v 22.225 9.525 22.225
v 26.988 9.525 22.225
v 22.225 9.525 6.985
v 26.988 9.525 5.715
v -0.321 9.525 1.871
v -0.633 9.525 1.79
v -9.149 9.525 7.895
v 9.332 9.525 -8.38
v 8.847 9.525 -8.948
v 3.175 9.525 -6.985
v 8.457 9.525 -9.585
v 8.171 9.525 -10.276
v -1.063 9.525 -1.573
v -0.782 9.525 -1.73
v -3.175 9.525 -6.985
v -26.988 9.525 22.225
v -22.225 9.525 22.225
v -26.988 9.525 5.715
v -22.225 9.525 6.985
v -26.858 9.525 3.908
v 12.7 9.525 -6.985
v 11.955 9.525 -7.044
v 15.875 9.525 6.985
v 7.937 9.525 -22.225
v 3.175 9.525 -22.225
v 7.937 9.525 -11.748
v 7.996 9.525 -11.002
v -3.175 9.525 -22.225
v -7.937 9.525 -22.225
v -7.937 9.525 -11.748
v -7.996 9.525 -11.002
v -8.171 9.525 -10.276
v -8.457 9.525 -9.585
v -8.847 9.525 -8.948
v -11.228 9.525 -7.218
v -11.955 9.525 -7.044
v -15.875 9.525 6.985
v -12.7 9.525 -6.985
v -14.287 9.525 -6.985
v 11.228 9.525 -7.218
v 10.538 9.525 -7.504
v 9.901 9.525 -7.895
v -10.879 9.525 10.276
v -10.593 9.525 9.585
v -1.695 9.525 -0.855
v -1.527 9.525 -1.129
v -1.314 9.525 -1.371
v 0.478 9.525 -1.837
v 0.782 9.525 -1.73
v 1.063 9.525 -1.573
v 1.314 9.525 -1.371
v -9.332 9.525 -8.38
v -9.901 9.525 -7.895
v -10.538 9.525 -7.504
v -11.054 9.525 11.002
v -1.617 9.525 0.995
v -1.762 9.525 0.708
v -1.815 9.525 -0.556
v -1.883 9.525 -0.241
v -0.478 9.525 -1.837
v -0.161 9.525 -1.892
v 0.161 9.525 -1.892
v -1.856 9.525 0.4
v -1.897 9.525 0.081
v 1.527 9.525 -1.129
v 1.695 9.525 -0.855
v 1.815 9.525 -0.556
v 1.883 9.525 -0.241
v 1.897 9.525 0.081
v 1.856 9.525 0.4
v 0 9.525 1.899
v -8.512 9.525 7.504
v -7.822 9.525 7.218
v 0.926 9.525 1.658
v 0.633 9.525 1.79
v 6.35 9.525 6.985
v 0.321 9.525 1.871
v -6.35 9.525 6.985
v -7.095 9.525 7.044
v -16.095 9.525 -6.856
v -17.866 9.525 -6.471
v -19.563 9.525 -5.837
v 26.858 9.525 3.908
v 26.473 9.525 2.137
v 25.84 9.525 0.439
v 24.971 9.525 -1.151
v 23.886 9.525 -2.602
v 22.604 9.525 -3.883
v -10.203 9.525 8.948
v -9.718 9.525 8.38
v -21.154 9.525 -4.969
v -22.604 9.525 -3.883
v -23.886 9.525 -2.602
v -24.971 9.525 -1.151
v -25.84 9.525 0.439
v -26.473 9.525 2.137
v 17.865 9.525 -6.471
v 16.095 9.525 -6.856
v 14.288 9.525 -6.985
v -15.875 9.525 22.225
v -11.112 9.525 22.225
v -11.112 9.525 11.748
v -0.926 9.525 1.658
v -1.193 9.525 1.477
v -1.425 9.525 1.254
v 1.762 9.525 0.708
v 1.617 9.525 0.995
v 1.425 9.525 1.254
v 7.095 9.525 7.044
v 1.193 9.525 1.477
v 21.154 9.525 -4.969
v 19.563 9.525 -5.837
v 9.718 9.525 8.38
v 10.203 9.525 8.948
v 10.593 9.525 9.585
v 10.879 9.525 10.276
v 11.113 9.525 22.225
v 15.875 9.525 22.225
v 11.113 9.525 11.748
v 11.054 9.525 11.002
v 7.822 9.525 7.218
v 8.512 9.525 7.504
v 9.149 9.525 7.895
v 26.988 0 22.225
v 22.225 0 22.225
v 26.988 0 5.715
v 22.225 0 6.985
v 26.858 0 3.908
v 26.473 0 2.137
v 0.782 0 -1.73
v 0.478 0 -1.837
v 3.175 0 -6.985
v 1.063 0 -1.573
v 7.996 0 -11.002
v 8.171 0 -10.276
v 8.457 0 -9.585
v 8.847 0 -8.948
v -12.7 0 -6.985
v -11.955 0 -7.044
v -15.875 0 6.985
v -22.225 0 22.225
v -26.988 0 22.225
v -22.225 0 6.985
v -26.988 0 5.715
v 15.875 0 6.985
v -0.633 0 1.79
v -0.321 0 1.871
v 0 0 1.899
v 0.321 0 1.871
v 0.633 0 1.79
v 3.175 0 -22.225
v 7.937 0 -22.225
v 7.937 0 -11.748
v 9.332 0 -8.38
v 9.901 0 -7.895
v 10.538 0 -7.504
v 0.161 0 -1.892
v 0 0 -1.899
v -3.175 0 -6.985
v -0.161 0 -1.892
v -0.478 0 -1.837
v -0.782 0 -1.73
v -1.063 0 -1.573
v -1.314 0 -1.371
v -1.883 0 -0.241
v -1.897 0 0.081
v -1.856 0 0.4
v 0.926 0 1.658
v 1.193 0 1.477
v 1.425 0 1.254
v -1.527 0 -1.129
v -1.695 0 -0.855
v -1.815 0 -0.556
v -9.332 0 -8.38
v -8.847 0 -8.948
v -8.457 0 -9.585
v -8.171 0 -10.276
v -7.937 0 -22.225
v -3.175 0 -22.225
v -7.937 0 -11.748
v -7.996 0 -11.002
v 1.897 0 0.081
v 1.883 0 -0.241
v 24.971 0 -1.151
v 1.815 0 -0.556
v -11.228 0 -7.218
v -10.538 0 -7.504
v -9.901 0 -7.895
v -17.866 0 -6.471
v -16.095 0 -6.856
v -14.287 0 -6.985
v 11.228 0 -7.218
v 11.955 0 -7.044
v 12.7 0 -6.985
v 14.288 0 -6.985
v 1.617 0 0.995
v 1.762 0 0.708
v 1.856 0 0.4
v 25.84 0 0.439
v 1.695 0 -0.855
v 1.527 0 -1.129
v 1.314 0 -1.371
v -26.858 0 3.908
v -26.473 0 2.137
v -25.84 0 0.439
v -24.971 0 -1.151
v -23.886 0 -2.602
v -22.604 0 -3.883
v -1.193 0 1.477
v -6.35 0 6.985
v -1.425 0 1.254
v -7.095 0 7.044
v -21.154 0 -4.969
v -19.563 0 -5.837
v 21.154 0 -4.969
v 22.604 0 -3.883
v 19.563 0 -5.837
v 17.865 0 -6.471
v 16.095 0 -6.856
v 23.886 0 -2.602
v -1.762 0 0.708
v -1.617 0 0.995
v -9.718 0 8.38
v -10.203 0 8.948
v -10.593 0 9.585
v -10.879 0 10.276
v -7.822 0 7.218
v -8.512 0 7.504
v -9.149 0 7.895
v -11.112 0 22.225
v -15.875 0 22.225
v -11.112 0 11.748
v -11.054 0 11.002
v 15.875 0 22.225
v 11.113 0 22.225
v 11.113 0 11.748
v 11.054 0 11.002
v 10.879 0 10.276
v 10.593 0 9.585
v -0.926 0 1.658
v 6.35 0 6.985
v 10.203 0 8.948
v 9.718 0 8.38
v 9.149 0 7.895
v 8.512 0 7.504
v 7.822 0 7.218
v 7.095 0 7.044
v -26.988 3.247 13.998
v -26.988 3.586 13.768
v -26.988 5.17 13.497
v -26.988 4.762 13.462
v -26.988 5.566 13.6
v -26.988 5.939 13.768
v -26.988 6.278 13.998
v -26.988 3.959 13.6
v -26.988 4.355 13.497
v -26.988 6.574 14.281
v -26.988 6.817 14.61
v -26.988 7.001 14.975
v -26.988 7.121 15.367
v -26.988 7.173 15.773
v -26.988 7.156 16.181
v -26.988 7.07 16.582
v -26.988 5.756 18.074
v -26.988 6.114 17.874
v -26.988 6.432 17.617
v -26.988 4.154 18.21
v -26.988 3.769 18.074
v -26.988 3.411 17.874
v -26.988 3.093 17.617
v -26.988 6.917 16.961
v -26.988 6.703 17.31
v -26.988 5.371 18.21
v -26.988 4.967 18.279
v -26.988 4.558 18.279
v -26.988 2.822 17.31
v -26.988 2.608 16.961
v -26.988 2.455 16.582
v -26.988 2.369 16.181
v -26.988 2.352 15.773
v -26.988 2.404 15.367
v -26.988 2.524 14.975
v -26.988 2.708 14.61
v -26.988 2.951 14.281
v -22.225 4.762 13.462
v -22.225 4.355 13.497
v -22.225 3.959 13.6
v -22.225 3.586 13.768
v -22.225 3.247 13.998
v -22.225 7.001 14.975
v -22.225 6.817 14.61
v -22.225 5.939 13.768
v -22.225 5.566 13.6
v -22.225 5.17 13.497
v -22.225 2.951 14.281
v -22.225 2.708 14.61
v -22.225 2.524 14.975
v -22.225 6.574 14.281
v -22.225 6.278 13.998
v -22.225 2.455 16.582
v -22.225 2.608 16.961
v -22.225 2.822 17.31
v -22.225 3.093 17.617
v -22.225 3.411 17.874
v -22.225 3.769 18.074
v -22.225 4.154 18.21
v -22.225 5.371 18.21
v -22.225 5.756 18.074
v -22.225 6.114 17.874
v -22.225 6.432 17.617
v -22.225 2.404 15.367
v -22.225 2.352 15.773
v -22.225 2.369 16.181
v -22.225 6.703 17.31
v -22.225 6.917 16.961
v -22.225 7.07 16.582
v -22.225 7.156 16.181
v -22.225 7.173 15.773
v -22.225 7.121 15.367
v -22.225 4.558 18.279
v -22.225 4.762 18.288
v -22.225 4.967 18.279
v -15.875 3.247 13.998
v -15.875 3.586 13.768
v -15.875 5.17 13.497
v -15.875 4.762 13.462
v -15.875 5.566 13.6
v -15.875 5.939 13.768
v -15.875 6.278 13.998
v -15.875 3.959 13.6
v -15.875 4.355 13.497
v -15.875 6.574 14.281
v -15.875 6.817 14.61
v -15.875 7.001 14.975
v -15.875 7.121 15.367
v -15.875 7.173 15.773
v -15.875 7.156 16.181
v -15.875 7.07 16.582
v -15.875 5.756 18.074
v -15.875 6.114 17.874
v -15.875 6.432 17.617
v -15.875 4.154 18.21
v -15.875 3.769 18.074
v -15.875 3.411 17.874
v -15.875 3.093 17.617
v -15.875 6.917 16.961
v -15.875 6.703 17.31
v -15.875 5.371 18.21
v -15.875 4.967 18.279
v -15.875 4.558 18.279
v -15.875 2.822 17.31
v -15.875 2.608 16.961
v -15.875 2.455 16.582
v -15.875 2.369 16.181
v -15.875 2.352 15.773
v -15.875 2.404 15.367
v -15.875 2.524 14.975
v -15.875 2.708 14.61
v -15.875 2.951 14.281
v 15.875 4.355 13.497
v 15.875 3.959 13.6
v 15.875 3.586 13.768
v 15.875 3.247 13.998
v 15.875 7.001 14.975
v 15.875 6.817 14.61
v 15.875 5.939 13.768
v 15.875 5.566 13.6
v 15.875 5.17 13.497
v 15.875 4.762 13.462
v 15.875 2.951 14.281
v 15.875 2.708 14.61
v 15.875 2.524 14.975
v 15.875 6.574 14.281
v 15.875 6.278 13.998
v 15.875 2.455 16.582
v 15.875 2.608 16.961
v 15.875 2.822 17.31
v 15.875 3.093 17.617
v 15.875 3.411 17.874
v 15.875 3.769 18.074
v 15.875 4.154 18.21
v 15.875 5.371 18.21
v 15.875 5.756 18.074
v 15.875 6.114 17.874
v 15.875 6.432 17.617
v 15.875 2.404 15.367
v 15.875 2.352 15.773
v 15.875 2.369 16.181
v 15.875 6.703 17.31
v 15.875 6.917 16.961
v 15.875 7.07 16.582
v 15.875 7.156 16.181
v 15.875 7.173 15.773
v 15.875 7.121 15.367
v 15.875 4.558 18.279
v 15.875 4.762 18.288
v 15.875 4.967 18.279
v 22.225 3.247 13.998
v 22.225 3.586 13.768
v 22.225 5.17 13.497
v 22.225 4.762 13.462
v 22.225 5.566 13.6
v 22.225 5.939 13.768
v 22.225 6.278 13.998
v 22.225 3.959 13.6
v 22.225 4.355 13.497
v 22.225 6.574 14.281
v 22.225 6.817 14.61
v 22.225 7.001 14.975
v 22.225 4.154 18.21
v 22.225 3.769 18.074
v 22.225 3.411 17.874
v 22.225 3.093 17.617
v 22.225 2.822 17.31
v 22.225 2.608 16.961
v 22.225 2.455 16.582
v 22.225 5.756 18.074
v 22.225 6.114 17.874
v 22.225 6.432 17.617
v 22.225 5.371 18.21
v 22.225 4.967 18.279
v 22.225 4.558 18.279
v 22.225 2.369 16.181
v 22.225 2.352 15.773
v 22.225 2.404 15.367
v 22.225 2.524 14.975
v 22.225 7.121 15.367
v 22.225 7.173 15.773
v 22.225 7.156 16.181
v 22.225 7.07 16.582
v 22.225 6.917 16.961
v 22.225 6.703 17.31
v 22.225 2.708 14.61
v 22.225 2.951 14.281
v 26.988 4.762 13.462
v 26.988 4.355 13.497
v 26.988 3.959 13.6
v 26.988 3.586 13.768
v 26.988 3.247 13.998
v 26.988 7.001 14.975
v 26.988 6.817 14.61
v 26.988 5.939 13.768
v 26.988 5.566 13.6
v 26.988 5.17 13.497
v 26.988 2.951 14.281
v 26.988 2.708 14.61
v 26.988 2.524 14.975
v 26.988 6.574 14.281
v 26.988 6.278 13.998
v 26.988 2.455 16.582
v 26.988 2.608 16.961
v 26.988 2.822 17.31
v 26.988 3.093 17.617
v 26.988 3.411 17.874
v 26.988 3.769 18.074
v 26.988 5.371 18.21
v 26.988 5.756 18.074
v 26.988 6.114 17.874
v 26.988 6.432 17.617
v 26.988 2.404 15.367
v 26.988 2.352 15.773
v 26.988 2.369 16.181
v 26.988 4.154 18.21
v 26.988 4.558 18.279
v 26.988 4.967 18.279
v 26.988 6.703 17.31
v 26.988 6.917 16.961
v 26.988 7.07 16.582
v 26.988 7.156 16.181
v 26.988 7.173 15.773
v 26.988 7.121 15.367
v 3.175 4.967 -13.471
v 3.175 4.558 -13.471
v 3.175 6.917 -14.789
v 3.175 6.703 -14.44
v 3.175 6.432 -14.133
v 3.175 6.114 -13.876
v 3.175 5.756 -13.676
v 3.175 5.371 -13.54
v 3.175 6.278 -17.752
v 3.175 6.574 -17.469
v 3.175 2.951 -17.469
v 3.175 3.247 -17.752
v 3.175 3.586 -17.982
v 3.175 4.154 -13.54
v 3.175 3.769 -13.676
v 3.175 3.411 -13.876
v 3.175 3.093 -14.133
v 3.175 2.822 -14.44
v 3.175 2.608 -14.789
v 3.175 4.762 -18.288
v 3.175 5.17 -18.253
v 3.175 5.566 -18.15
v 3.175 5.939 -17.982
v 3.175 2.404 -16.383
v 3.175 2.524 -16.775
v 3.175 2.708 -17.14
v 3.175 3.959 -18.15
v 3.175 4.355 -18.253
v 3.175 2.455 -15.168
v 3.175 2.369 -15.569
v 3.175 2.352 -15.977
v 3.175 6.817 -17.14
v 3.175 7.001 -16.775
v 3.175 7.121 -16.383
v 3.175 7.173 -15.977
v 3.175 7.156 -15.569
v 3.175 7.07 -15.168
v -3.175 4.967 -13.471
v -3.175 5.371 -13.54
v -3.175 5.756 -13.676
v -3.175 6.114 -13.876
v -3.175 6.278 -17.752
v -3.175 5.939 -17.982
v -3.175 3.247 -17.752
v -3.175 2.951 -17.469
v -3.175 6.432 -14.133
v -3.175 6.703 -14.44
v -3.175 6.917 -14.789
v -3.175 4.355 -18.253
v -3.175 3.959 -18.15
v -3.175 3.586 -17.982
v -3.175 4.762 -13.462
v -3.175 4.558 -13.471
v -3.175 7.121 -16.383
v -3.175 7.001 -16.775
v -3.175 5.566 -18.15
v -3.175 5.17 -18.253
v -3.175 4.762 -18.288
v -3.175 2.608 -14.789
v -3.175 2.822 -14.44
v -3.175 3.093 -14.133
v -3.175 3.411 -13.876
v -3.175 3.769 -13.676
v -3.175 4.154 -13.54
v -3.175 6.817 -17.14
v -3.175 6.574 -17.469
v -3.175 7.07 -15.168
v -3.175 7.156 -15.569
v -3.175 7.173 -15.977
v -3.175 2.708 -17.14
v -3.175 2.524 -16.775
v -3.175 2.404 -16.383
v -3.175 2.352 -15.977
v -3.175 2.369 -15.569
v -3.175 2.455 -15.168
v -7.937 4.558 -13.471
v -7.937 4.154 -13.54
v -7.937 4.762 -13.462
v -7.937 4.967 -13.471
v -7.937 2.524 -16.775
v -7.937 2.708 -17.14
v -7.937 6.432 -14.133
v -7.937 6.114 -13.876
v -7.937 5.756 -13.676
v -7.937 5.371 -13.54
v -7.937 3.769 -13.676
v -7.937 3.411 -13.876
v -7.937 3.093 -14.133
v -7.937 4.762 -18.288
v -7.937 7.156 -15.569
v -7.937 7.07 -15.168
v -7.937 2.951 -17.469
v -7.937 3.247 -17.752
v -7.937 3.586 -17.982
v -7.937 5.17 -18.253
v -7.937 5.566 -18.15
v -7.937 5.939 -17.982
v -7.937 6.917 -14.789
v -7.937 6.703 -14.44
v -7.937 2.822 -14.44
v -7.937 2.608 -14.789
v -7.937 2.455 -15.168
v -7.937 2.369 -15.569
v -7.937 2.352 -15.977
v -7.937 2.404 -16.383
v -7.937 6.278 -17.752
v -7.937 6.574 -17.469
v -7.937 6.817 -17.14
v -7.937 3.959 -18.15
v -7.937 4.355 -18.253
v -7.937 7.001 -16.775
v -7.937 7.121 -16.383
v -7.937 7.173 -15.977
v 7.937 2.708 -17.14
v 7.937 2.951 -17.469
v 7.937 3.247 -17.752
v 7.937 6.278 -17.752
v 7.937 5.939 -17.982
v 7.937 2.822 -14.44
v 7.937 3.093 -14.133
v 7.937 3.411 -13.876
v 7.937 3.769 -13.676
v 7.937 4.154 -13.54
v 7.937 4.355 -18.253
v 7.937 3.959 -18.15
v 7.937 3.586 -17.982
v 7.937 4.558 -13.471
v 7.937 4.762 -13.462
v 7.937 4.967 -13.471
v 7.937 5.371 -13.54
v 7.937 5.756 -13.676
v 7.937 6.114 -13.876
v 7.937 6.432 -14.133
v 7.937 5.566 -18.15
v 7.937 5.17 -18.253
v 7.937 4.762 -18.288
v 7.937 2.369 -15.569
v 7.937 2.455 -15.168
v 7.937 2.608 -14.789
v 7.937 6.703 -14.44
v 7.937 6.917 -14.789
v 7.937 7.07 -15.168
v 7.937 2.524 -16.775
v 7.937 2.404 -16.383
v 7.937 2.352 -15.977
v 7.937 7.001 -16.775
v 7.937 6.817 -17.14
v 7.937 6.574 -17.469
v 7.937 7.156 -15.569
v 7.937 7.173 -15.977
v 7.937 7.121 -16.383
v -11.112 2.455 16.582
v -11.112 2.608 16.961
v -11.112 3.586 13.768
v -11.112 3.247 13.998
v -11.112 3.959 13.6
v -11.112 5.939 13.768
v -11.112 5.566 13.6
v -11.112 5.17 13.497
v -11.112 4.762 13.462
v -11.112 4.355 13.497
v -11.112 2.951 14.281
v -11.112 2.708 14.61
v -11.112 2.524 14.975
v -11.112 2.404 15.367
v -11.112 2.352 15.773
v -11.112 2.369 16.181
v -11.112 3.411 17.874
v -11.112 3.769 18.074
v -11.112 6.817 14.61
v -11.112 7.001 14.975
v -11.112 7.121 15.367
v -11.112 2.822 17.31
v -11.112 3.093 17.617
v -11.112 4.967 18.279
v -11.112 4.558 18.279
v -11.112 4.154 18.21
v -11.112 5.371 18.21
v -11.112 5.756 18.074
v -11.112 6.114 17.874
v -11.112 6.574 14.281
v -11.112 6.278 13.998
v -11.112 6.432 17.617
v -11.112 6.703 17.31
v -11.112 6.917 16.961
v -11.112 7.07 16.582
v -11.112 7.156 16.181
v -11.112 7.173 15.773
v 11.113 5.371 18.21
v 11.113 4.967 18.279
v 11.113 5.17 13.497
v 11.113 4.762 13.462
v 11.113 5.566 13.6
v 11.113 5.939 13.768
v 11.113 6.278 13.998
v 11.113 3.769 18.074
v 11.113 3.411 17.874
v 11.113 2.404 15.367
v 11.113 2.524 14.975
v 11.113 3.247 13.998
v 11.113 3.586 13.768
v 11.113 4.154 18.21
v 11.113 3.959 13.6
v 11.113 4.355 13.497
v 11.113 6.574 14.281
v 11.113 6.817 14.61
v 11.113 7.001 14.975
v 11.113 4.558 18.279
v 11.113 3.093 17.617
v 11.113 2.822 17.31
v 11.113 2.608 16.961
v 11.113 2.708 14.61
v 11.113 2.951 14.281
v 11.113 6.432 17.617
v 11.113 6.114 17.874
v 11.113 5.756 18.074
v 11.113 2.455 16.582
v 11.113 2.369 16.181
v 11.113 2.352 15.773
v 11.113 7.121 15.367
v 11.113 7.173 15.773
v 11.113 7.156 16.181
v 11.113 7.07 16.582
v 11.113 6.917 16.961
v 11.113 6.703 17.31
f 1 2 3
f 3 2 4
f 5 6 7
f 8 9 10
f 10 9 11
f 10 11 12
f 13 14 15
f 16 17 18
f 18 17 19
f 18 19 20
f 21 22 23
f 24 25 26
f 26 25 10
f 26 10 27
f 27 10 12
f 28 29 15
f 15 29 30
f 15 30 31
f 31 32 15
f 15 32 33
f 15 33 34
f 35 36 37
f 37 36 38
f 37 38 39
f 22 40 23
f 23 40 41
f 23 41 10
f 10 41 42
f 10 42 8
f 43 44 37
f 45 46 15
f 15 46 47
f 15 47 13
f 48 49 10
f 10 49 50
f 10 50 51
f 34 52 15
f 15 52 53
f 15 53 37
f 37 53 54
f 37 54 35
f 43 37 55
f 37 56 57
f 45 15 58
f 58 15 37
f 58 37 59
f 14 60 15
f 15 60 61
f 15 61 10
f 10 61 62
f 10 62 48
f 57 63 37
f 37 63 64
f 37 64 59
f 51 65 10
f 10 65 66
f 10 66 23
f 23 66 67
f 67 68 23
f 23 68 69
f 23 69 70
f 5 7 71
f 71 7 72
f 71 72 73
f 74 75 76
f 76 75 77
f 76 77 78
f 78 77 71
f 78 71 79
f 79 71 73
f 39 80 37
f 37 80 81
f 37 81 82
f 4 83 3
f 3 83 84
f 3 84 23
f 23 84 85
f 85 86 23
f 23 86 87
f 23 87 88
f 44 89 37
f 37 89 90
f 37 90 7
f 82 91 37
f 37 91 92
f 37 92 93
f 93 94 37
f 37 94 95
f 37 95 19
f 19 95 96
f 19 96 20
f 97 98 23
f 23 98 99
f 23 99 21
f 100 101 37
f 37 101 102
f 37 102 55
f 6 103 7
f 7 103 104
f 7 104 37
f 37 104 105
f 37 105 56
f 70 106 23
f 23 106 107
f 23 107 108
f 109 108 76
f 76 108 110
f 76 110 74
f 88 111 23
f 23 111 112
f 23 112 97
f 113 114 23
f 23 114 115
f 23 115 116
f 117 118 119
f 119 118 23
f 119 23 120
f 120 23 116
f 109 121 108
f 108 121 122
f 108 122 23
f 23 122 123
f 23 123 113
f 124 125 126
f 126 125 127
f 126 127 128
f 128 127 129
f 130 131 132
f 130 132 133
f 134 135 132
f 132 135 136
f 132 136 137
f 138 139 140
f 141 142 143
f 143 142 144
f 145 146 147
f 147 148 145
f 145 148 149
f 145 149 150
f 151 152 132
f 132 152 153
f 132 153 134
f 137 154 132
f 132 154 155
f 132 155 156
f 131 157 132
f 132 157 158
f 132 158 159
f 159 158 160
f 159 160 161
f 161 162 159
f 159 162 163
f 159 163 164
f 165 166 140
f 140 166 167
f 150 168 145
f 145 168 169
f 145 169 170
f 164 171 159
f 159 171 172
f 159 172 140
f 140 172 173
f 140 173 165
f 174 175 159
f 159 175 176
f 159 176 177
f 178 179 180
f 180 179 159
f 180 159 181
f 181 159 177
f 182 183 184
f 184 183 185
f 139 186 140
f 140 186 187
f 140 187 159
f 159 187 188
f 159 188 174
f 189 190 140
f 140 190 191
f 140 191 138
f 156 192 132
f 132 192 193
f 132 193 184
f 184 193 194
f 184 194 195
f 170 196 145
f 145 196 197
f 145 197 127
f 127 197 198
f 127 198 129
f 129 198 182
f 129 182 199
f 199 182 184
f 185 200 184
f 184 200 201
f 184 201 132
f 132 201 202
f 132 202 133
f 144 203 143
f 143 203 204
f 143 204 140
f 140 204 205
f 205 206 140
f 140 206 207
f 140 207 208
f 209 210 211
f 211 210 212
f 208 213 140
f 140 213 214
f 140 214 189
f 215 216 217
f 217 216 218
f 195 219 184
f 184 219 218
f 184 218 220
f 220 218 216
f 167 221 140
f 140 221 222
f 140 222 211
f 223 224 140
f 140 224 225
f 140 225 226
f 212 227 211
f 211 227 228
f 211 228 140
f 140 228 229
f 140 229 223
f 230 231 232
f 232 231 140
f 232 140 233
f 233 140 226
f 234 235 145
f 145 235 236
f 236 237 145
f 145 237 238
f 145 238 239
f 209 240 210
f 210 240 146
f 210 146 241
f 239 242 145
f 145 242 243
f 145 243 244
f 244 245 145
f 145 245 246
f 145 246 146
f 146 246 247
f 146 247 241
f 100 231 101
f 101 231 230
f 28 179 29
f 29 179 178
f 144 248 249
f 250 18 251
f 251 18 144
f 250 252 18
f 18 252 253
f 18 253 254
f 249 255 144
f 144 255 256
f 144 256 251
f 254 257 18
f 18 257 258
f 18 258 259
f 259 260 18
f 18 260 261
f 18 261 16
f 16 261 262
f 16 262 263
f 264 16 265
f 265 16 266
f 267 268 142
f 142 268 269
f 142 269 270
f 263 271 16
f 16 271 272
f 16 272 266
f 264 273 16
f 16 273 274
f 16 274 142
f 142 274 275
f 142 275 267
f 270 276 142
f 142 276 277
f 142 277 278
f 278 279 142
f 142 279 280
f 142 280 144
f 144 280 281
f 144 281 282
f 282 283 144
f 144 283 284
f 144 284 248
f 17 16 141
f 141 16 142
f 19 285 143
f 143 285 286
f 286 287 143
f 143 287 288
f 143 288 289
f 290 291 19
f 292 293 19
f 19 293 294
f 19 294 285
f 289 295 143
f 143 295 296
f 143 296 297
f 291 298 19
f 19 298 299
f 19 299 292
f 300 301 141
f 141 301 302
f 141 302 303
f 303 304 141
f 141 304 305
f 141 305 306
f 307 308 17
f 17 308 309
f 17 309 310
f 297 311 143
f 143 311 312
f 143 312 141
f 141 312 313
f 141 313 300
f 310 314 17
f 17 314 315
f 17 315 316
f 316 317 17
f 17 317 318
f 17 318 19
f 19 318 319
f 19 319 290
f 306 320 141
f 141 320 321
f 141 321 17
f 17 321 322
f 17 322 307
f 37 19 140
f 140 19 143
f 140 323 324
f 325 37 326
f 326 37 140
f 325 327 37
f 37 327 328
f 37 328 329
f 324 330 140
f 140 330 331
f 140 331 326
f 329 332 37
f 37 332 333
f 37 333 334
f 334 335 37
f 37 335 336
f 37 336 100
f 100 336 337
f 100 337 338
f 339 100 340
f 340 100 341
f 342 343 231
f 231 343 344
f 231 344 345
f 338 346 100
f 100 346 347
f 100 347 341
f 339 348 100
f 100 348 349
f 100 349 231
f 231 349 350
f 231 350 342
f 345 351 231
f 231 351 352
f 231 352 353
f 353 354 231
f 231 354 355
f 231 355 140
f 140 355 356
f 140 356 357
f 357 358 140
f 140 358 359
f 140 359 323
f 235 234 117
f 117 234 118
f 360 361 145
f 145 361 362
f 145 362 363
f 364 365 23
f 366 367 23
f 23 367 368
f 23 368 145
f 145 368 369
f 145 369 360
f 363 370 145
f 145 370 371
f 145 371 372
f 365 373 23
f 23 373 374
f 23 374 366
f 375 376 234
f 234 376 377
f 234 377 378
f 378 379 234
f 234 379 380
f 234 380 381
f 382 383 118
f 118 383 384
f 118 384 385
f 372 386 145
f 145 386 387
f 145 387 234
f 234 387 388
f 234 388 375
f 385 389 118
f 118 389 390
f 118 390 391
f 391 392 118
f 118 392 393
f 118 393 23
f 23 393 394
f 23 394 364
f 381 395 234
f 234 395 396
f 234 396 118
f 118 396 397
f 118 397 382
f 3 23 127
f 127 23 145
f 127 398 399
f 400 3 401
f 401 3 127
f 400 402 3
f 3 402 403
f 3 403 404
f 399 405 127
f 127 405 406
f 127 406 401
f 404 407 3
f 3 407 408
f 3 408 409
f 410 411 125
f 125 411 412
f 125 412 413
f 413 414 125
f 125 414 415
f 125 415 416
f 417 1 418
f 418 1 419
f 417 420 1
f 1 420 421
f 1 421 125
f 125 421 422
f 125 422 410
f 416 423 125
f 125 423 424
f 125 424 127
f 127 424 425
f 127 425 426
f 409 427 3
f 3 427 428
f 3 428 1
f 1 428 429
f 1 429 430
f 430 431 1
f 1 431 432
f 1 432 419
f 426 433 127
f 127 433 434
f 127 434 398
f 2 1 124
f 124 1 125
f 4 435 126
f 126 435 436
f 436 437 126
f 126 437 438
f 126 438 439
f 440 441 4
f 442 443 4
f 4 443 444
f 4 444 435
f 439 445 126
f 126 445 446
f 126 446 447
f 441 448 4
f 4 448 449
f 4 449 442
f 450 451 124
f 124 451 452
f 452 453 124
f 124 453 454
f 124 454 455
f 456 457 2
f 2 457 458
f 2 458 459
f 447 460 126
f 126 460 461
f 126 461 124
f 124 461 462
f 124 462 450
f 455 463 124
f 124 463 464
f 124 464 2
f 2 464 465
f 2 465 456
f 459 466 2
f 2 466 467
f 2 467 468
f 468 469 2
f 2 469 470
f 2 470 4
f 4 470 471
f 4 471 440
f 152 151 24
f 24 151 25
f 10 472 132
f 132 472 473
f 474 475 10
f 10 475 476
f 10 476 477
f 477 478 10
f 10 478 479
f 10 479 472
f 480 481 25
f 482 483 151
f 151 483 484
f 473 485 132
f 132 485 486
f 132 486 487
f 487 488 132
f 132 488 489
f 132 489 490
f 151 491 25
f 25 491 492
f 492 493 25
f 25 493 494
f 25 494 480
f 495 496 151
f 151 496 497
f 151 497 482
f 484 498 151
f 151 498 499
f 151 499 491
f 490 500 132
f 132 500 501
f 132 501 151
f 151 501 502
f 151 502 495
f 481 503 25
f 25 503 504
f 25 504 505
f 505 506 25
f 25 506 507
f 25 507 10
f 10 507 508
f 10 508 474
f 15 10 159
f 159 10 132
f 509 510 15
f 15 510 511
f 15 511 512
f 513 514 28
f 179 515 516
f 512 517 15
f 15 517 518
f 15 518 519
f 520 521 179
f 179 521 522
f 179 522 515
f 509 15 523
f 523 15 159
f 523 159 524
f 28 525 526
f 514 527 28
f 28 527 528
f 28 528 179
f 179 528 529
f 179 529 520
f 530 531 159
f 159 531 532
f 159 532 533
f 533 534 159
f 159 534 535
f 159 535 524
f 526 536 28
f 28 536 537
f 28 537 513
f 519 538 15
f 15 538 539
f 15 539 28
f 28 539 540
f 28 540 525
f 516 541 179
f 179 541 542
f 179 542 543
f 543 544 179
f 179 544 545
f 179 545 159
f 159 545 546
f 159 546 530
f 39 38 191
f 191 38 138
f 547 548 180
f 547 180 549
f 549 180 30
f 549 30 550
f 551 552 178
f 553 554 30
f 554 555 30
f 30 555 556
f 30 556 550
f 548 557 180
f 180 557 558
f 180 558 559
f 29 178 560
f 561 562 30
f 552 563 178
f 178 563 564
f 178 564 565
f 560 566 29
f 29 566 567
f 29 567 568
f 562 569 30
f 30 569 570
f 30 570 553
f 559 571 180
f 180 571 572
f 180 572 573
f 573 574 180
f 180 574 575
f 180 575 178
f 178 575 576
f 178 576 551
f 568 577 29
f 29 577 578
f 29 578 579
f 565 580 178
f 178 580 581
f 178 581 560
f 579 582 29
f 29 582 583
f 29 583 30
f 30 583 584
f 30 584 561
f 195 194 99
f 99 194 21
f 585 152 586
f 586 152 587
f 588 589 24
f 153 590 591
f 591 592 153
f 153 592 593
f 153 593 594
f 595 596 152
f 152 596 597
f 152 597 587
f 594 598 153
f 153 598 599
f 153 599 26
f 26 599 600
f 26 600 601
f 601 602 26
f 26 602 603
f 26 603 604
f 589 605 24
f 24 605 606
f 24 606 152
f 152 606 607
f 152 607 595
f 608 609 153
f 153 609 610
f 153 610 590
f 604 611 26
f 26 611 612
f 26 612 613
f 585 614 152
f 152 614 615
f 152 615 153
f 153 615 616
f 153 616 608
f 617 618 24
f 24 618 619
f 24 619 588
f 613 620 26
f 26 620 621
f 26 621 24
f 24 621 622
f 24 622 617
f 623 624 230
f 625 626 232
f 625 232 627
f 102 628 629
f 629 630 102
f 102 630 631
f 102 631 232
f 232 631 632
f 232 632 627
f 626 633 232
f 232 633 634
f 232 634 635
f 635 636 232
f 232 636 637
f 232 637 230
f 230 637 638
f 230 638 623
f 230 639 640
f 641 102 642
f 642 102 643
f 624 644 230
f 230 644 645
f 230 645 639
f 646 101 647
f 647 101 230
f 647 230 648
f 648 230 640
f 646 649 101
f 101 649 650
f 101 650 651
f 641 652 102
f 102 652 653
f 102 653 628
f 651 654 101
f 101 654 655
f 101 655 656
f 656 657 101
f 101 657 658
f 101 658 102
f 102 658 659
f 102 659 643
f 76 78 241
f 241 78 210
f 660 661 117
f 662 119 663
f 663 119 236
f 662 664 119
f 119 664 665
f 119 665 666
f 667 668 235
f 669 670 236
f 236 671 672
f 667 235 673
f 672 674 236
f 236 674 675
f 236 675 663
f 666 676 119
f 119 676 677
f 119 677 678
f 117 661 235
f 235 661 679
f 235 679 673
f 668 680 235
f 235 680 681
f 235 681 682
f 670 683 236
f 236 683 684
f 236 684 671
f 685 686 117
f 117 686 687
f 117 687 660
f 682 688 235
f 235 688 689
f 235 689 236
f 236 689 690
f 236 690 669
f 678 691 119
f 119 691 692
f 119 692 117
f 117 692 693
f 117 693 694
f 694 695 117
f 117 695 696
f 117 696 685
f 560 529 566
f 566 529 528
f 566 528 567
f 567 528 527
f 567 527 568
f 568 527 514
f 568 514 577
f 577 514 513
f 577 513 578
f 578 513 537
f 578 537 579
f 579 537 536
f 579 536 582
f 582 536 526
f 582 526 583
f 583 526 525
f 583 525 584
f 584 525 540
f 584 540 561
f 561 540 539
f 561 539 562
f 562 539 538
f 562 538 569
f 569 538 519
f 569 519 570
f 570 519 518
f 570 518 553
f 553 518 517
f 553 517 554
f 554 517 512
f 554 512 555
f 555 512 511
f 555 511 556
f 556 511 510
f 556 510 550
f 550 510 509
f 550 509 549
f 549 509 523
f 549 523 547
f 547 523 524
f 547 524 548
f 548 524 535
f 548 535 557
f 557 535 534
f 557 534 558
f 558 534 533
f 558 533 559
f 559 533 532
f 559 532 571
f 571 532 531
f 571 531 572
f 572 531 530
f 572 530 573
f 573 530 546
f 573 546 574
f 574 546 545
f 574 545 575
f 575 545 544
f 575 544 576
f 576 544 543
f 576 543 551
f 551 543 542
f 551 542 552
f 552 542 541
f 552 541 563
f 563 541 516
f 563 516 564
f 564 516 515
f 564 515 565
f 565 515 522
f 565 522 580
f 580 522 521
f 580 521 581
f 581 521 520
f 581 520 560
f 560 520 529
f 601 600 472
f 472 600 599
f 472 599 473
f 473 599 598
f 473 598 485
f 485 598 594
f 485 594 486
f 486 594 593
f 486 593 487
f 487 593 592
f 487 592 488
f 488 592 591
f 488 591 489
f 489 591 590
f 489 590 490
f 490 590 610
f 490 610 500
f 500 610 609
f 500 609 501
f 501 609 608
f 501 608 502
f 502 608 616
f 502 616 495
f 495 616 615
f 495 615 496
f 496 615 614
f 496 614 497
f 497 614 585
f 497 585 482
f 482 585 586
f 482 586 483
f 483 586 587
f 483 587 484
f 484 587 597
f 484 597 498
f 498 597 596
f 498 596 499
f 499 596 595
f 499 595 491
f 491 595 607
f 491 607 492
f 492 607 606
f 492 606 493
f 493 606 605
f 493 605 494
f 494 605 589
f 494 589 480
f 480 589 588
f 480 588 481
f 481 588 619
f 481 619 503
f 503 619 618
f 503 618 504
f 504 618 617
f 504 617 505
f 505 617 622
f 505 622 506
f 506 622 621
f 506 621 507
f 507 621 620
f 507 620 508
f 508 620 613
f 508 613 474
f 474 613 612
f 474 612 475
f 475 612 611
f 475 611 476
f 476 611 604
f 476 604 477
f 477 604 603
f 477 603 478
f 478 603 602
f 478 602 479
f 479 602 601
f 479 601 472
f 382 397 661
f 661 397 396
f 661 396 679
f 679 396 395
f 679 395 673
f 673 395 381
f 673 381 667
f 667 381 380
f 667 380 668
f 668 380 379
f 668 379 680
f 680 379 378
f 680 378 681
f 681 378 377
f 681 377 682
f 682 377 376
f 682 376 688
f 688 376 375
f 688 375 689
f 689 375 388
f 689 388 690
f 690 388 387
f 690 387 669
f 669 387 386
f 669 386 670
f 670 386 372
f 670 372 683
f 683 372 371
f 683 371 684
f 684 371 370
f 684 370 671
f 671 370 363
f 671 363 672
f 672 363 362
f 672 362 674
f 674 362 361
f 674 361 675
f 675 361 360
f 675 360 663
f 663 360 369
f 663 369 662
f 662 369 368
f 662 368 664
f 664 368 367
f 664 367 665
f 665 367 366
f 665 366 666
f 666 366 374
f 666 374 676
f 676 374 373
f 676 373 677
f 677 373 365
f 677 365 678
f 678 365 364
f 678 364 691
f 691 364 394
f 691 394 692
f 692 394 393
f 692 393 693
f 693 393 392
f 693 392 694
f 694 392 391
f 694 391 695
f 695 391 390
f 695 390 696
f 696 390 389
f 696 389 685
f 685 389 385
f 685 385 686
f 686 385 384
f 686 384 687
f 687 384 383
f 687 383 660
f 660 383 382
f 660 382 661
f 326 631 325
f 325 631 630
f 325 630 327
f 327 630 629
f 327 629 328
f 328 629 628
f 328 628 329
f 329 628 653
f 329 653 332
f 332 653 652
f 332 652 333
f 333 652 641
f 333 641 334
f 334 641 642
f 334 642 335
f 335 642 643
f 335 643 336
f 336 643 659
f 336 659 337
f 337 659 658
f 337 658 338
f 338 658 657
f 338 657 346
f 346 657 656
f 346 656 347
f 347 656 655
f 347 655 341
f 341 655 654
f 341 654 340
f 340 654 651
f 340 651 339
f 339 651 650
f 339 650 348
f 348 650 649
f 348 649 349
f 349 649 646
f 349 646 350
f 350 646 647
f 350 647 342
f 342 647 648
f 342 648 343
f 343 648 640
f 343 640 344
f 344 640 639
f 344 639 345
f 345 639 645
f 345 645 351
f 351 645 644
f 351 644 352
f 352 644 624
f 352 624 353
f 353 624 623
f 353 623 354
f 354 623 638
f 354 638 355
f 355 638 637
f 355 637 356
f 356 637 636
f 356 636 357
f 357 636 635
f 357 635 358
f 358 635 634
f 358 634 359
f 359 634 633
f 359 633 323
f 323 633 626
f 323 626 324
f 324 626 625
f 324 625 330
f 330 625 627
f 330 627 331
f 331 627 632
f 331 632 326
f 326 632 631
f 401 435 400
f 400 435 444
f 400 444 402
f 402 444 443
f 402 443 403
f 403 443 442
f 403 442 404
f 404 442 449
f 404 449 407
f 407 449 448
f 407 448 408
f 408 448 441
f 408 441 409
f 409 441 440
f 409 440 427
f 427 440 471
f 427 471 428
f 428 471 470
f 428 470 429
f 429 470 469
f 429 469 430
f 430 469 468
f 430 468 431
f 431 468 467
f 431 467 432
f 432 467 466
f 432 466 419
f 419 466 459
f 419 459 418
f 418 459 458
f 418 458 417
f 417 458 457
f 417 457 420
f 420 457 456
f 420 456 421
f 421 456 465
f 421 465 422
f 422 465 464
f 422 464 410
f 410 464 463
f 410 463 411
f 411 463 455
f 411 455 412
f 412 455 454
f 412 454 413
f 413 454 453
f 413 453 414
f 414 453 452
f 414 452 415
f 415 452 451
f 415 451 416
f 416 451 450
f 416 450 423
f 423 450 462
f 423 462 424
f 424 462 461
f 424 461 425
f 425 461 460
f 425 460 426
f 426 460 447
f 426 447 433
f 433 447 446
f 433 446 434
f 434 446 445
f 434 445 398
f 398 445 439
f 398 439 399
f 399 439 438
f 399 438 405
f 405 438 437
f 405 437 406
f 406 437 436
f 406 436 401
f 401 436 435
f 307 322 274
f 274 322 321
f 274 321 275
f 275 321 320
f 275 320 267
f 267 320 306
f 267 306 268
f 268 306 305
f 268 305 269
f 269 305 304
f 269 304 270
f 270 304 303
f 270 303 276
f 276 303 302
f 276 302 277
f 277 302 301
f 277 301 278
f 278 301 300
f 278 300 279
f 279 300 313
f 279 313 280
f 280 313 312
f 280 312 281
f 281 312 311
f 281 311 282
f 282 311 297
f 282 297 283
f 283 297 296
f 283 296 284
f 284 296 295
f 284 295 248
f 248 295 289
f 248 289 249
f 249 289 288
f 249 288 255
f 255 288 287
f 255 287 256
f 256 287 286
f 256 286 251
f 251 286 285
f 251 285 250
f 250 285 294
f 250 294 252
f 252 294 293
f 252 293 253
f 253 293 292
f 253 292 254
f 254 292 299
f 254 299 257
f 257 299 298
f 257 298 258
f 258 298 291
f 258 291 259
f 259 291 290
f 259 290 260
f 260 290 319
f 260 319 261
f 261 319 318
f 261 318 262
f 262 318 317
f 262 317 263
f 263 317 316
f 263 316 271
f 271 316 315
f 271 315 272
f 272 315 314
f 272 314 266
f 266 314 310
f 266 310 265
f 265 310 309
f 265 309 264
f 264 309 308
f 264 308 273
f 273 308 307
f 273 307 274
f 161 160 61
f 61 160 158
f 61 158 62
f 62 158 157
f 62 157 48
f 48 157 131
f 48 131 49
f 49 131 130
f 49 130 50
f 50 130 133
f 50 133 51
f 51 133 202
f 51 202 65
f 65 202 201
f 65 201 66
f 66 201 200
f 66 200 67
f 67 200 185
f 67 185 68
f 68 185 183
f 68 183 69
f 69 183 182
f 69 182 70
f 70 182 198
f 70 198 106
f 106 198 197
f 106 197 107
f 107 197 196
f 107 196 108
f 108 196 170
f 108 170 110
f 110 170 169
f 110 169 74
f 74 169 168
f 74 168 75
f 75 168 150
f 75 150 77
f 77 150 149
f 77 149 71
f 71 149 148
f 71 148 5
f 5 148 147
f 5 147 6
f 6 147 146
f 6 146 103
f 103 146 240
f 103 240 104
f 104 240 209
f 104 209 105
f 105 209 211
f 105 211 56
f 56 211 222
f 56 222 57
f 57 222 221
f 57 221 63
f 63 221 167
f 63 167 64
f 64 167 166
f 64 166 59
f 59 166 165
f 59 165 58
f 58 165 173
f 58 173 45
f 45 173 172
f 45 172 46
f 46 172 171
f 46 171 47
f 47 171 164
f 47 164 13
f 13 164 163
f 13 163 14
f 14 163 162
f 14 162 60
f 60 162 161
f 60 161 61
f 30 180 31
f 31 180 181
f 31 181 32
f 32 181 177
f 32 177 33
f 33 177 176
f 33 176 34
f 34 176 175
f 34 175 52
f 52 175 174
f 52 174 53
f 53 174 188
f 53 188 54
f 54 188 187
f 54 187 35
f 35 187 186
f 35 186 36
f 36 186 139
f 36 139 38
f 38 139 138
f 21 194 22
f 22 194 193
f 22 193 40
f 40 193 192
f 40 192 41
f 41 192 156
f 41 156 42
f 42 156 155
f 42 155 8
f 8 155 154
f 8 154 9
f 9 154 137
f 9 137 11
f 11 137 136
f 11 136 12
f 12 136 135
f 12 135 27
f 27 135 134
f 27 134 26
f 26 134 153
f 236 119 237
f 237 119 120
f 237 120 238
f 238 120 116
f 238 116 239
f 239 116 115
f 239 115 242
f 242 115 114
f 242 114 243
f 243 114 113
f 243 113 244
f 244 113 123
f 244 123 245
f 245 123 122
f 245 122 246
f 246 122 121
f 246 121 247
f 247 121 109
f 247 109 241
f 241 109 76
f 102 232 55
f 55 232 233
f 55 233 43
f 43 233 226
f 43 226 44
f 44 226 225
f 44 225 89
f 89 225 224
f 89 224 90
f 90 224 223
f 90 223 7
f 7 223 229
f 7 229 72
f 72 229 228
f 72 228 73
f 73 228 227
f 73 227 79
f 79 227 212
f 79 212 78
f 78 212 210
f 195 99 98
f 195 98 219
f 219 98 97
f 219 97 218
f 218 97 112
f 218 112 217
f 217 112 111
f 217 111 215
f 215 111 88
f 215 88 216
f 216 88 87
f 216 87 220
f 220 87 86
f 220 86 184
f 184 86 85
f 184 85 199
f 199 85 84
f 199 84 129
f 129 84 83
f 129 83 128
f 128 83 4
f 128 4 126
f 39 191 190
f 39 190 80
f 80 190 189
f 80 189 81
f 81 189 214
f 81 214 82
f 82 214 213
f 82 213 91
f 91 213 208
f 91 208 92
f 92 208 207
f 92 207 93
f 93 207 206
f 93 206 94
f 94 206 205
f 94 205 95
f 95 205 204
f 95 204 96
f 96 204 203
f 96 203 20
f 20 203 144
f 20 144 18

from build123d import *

# Parameters (mm, degrees)
BOSS_EXTRUDE1_DEPTH                   = 9.525
SKETCH2_W                             = 19.05
SKETCH2_H                             = 15.24
SKETCH2_W_2                           = 22.225
CUT_EXTRUDE1_DEPTH                    = 10.525
F_3_16_0_1875_CLEARANCE_DOWEL_HOLE1_D = 4.826
F_10_24_TAPPED_HOLE1_D                = 3.7973
F_10_24_TAPPED_HOLE1_DEPTH            = 9.525
FILLET1_R                             = 4.7625
FILLET2_R                             = 12.7


with BuildPart() as part:
    # Sketch1 → Boss-Extrude1 (new body)
    with BuildSketch(Plane(origin=(0, 0, 0), x_dir=(1, 0, 0), z_dir=(0, 1, 0))):
        Polygon((-3.175, 22.225), (-3.175, 6.985), (3.175, 6.985), (3.175, 22.225), (26.9875, 22.225), (26.9875, -22.225), (22.225, -22.225), (22.225, -6.985), (15.875, -6.985), (15.875, -22.225), (-15.875, -22.225), (-15.875, -6.985), (-22.225, -6.985), (-22.225, -22.225), (-26.9875, -22.225), (-26.9875, 22.225), align=None)
    extrude(amount=BOSS_EXTRUDE1_DEPTH)

    # Sketch2 → Cut-Extrude1 (cut, through all)
    with BuildSketch(Plane(origin=(0, 9.525, 0), x_dir=(1, 0, 0), z_dir=(0, 1, 0))):
        with Locations((-17.4625, 14.605)):
            Rectangle(SKETCH2_W, SKETCH2_H)
        with Locations((17.4625, 14.605)):
            Rectangle(SKETCH2_W, SKETCH2_H)
        with Locations((0, -14.605)):
            Rectangle(SKETCH2_W_2, SKETCH2_H)
    extrude(amount=-CUT_EXTRUDE1_DEPTH, mode=Mode.SUBTRACT)

    # 3/16 (0.1875) Clearance Dowel Hole1 (through all)
    with Locations(Plane(origin=(26.9875, 0, 0), x_dir=(0, 0, -1), z_dir=(1, 0, 0))):
        with Locations((-15.875, 4.7625), (15.875, 4.7625)):
            Hole(F_3_16_0_1875_CLEARANCE_DOWEL_HOLE1_D / 2)

    # #10-24 Tapped Hole1
    with Locations(Plane(origin=(0, 9.525, 0), x_dir=(1, 0, 0), z_dir=(0, 1, 0))):
        with Locations((0, 0)):
            Hole(F_10_24_TAPPED_HOLE1_D / 2, depth=F_10_24_TAPPED_HOLE1_DEPTH)

    # Fillet1
    fillet1_edges = [part.edges().sort_by_distance(p)[0] for p in [
        (-7.9375, 4.7625, -6.985),
        (7.9375, 4.7625, -6.985),
        (-11.1125, 4.7625, 6.985),
        (11.1125, 4.7625, 6.985),
    ]]
    fillet(fillet1_edges, radius=FILLET1_R)

    # Fillet2
    fillet2_edges = [part.edges().sort_by_distance(p)[0] for p in [
        (-26.9875, 4.7625, -6.985),
        (26.9875, 4.7625, -6.985),
    ]]
    fillet(fillet2_edges, radius=FILLET2_R)


solid = part.part
